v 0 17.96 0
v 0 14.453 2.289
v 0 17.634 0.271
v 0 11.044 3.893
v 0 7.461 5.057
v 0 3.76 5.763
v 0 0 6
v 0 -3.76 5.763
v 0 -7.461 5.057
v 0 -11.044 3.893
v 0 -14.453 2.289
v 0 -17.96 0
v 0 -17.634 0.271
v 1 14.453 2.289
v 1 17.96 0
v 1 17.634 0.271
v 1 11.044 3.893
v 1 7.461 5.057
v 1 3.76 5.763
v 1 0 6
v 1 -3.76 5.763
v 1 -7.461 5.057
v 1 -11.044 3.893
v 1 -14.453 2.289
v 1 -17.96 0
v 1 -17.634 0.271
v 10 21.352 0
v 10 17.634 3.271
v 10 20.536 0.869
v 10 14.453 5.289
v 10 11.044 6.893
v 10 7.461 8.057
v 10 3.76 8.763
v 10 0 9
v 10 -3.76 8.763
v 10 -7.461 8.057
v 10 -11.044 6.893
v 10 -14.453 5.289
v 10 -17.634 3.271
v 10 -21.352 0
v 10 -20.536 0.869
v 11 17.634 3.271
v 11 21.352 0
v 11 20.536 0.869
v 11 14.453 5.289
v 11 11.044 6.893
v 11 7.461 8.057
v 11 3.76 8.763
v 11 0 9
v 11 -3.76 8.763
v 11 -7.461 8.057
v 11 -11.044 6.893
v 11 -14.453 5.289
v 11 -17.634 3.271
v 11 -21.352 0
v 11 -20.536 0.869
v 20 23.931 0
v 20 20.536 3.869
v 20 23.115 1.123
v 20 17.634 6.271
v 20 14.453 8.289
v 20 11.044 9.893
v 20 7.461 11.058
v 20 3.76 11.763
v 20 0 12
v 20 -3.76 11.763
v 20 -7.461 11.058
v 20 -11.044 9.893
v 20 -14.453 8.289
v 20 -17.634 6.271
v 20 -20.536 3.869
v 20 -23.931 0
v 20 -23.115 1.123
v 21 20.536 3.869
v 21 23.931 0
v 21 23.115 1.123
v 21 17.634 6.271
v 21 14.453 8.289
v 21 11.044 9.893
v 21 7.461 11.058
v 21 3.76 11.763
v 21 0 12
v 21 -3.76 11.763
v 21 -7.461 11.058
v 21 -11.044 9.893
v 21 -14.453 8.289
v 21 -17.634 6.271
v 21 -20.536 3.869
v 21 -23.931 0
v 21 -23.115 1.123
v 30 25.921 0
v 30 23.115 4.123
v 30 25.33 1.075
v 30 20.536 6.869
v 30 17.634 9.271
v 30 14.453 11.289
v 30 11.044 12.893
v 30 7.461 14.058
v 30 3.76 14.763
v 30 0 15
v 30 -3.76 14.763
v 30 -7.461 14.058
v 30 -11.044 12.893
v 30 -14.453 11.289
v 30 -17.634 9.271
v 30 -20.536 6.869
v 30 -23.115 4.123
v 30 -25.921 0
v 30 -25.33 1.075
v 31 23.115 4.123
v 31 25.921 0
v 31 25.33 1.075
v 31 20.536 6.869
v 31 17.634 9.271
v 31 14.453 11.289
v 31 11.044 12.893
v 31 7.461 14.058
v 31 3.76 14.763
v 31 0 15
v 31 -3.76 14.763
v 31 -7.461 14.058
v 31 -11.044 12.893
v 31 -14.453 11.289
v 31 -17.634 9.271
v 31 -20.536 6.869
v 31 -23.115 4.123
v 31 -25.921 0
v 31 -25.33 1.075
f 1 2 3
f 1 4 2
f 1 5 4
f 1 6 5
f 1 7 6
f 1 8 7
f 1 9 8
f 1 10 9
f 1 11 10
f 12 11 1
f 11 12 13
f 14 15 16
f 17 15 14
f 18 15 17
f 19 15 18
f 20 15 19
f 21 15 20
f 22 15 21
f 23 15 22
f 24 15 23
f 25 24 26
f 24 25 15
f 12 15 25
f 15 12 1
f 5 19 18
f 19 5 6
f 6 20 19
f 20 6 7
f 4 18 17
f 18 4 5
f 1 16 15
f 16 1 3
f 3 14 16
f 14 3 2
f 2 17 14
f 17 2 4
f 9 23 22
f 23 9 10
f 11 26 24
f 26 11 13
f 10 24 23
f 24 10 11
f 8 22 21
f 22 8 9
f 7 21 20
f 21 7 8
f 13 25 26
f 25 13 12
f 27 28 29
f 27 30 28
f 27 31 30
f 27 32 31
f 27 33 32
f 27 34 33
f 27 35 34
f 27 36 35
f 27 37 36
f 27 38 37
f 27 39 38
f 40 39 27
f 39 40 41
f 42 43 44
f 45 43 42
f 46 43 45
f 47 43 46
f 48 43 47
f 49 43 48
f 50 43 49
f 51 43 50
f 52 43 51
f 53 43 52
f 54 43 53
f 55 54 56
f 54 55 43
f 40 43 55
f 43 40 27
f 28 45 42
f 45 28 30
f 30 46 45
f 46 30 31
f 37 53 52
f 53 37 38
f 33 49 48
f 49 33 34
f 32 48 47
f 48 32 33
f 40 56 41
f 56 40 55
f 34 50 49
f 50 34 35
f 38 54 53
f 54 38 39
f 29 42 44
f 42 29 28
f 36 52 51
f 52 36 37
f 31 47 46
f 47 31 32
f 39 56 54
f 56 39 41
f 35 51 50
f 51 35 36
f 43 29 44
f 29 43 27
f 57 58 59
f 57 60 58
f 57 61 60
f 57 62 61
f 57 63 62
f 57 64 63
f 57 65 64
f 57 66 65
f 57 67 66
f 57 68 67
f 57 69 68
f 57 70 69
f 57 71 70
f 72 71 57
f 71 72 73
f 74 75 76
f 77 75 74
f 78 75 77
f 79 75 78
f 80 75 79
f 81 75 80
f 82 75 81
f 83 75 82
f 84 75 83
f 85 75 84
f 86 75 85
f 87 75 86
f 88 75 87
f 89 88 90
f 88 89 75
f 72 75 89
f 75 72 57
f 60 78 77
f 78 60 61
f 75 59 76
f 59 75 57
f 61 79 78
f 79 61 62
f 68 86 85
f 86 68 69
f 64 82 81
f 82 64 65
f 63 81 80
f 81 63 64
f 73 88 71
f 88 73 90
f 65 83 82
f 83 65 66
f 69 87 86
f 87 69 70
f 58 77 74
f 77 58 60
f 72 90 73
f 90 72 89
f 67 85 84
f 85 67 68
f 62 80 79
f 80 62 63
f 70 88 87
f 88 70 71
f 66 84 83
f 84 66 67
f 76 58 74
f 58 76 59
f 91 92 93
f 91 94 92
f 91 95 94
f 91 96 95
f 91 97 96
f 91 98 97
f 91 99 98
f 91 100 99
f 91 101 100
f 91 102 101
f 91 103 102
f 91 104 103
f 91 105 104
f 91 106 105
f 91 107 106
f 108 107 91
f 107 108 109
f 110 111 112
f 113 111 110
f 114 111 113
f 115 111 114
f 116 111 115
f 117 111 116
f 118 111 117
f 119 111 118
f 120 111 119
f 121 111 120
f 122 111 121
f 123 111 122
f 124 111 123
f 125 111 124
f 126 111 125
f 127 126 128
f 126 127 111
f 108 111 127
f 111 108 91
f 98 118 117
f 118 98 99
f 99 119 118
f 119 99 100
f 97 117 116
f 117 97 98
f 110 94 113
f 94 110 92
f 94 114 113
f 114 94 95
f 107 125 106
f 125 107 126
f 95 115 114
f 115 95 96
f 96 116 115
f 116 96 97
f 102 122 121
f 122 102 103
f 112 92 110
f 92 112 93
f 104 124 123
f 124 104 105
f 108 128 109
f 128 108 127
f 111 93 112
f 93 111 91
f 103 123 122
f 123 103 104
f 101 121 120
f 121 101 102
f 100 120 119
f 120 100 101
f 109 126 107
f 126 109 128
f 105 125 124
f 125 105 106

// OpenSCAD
$fn=50;

module arc(rad, thick, percent) {
    translate([thick/2,0,-rad+(2*rad*percent)]) {
    rotate([0,-90,0]) {
    intersection() {
        translate([2*rad*(1.0-percent),0,0])
        cube([2*rad,2*rad,thick], center=true);
        cylinder(thick, r=rad, center=true);
    }
}
}
}

translate([0,0,0]) arc(30, 1, .1);
translate([10,0,0]) arc(30, 1, .15);
translate([20,0,0]) arc(30, 1, .2);
translate([30,0,0]) arc(30, 1, .25);
